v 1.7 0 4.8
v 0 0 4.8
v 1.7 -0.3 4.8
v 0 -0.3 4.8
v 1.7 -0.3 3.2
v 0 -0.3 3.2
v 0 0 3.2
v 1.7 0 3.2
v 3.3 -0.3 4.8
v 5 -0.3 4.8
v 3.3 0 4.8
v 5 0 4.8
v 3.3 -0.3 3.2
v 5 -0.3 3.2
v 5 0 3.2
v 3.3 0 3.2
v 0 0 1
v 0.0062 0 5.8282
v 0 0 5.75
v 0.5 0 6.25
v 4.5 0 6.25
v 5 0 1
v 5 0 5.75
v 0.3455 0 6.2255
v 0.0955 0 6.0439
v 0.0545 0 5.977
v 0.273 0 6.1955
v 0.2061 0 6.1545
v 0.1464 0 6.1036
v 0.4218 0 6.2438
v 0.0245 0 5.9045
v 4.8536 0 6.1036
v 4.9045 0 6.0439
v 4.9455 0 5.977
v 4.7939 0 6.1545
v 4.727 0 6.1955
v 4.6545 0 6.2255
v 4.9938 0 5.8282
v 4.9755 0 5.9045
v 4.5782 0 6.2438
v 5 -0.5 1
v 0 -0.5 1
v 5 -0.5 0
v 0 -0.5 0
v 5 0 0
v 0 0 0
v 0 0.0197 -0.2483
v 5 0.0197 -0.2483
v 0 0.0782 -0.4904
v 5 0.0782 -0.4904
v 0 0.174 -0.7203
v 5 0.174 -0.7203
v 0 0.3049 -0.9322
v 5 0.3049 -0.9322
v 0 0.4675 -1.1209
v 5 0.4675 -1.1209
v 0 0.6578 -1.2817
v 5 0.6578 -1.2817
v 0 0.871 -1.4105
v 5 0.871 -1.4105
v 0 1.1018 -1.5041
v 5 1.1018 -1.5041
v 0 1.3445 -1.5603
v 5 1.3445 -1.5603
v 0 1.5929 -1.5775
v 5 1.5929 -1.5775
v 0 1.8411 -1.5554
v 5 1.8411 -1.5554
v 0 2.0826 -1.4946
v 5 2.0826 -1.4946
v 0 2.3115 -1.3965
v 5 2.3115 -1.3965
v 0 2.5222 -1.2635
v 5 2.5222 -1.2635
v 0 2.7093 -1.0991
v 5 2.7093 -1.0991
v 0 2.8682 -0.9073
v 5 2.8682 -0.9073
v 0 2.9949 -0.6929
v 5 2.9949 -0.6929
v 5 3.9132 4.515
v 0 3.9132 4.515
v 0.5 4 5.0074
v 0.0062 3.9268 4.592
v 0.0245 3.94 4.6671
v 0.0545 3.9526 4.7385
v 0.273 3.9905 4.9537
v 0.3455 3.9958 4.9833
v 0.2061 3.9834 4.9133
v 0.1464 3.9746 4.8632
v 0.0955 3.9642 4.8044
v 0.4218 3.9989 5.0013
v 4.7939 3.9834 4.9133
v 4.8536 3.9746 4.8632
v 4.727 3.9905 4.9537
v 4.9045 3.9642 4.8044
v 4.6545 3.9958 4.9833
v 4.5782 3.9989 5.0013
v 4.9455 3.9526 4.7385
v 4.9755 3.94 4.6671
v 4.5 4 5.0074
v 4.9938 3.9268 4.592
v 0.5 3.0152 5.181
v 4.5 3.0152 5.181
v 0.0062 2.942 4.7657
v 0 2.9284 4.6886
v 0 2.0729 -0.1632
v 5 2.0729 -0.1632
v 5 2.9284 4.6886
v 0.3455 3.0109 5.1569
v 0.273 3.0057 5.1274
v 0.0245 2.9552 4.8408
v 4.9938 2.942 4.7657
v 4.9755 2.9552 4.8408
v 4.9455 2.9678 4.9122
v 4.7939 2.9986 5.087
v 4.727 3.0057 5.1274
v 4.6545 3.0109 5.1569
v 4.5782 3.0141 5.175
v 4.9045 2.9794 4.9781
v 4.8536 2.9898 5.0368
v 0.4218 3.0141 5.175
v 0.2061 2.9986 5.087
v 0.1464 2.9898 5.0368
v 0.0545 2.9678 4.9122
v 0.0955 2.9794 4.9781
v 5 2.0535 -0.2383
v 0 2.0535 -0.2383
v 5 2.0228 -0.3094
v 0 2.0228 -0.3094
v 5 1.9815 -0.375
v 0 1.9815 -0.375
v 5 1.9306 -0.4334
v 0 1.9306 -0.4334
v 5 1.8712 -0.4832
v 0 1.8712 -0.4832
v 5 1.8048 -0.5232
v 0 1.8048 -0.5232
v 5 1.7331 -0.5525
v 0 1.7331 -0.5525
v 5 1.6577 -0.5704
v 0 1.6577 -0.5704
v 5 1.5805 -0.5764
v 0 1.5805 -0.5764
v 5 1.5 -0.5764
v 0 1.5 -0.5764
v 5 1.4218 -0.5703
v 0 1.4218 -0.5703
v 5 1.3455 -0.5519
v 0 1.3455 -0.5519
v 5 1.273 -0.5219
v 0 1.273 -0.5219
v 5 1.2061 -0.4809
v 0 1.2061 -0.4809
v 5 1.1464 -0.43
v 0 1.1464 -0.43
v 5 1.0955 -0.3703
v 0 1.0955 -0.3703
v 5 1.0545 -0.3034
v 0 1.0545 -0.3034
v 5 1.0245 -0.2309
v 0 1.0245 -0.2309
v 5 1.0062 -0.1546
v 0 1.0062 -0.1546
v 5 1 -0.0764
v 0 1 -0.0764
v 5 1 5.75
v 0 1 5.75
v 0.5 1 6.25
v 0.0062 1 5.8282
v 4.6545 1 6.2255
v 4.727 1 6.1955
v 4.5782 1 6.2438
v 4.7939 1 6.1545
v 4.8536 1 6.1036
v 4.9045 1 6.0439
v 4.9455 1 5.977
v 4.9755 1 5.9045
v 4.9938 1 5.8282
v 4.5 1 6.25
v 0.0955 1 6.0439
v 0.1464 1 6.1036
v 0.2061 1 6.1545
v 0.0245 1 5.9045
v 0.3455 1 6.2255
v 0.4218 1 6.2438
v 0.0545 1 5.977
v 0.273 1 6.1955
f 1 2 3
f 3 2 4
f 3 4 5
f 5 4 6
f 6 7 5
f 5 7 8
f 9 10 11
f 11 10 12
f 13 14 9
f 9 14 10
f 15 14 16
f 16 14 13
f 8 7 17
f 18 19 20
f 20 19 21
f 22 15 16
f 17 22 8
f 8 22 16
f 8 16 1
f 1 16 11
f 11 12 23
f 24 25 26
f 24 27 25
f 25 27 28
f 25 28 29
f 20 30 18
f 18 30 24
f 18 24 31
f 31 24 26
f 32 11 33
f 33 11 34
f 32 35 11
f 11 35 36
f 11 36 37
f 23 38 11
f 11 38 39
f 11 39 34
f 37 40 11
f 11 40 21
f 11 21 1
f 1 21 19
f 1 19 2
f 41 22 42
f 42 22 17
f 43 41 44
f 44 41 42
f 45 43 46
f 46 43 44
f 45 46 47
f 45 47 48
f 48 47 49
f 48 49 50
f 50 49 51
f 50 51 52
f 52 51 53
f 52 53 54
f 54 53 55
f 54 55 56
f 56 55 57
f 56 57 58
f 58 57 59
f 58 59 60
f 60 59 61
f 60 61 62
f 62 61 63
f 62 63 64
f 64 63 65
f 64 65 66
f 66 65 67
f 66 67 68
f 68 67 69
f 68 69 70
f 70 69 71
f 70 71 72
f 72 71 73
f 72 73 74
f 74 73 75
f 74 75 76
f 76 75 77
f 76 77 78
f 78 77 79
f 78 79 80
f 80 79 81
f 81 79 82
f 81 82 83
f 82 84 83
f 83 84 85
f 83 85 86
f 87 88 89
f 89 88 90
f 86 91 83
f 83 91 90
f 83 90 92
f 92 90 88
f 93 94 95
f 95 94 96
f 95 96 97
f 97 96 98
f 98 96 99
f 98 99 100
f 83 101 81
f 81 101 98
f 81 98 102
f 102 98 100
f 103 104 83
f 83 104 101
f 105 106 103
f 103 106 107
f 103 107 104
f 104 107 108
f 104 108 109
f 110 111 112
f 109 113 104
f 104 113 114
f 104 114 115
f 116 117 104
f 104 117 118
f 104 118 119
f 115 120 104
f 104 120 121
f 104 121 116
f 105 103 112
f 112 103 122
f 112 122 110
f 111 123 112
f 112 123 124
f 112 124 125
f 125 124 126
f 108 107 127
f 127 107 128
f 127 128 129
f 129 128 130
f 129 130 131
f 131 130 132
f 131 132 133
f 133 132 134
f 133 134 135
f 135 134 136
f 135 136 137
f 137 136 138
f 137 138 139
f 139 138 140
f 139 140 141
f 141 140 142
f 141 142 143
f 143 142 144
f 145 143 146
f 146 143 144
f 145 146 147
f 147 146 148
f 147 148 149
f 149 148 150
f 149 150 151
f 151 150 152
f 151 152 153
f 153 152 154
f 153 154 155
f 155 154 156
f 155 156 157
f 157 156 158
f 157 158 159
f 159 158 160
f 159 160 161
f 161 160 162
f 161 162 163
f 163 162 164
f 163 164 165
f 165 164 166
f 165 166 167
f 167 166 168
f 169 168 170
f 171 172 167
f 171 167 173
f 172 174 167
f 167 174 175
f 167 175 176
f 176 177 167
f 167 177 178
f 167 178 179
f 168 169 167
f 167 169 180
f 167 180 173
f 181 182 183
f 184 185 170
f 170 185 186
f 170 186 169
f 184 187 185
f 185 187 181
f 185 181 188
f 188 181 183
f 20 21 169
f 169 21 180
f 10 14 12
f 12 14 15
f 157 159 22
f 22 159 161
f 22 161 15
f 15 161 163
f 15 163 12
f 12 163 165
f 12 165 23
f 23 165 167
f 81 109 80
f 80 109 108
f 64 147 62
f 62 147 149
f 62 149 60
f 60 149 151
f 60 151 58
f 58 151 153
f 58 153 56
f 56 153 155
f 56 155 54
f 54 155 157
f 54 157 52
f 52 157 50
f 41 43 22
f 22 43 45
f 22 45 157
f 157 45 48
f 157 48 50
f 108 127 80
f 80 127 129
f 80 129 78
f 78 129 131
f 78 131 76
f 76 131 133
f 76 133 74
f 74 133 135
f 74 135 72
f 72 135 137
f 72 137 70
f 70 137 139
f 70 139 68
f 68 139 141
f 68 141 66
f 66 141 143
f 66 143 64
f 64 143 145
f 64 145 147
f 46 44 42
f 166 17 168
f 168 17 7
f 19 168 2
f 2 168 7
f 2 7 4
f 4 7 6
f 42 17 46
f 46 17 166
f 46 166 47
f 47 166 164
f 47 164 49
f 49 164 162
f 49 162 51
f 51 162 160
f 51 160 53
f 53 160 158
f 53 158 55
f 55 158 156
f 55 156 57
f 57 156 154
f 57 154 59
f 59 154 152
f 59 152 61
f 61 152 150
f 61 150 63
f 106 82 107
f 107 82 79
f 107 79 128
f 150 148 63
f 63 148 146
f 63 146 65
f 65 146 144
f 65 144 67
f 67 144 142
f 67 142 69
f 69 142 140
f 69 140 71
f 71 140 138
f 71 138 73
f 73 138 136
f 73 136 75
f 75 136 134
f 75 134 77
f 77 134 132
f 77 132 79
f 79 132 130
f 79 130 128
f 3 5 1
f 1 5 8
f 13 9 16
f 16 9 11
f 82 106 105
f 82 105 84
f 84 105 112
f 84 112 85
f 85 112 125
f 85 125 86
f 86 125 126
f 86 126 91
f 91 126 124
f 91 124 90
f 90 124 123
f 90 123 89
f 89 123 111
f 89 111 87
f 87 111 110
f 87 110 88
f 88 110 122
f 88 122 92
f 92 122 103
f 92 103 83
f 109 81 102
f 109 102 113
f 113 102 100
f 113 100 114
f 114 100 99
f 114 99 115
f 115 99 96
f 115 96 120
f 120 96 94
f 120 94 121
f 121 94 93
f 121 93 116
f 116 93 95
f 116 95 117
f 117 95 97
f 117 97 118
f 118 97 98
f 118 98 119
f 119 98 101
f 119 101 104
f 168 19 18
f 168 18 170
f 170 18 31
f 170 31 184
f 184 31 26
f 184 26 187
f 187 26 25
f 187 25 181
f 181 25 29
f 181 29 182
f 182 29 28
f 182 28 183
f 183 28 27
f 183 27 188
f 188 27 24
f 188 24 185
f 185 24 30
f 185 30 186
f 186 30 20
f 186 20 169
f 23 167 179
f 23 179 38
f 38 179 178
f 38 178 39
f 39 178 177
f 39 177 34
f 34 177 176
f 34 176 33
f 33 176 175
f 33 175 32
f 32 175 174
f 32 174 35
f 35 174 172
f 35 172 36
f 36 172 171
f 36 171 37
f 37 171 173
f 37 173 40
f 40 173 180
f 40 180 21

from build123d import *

# Parameters (mm, degrees)
BOSS_EXTRUDE1_DEPTH = 5
SKETCH2_W           = 1.6
SKETCH2_H           = 1.6
CUT_EXTRUDE1_DEPTH  = 0.3
FILLET1_R           = 0.5


with BuildPart() as part:
    # Sketch1 → Boss-Extrude1 (new body)
    with BuildSketch(Plane(origin=(0, 0, 0), x_dir=(0, 0, -1), z_dir=(1, 0, 0))):
        with BuildLine():
            Line((-5.181029882, 3.015192247), (-4, 2.806944814))
            Line((-4, 2.806944814), (0.163235541, 2.072854061))
            ThreePointArc((0.163235541, 2.072854061), (0.459433673, 1.901843989), (0.576411452, 1.580450184))
            Line((0.576411452, 1.580450184), (0.576411452, 1.5))
            ThreePointArc((0.576411452, 1.5), (0.429964842, 1.146446609), (0.076411452, 1))
            Line((0.076411452, 1), (-6.25, 1))
            Line((-6.25, 1), (-6.25, 0))
            Line((-6.25, 0), (-4.8, 0))
            Line((-4.8, 0), (-4.8, -0.3))
            Line((-4.8, -0.3), (-3.2, -0.3))
            Line((-3.2, -0.3), (-3.2, 0))
            Line((-3.2, 0), (-1, 0))
            Line((-1, 0), (-1, -0.5))
            Line((-1, -0.5), (0, -0.5))
            Line((0, -0.5), (0, 0))
            ThreePointArc((0, 0), (1.536997065, 1.222015685), (0.692851848, 2.994895028))
            Line((0.692851848, 2.994895028), (-5.007381704, 4))
            Line((-5.007381704, 4), (-5.181029882, 3.015192247))
        make_face()
    extrude(amount=BOSS_EXTRUDE1_DEPTH)

    # Sketch2 → Cut-Extrude1 (cut)
    with BuildSketch(Plane.XZ.offset(0.3)):
        with Locations((2.5, 4)):
            Rectangle(SKETCH2_W, SKETCH2_H)
    extrude(amount=-CUT_EXTRUDE1_DEPTH, mode=Mode.SUBTRACT)

    # Fillet1
    fillet1_edges = [part.edges().sort_by_distance(p)[0] for p in [
        (0, 0.5, 6.25),
        (0, 3.507596123, 5.094205793),
        (5, 3.507596123, 5.094205793),
        (5, 0.5, 6.25),
    ]]
    fillet(fillet1_edges, radius=FILLET1_R)


solid = part.part
